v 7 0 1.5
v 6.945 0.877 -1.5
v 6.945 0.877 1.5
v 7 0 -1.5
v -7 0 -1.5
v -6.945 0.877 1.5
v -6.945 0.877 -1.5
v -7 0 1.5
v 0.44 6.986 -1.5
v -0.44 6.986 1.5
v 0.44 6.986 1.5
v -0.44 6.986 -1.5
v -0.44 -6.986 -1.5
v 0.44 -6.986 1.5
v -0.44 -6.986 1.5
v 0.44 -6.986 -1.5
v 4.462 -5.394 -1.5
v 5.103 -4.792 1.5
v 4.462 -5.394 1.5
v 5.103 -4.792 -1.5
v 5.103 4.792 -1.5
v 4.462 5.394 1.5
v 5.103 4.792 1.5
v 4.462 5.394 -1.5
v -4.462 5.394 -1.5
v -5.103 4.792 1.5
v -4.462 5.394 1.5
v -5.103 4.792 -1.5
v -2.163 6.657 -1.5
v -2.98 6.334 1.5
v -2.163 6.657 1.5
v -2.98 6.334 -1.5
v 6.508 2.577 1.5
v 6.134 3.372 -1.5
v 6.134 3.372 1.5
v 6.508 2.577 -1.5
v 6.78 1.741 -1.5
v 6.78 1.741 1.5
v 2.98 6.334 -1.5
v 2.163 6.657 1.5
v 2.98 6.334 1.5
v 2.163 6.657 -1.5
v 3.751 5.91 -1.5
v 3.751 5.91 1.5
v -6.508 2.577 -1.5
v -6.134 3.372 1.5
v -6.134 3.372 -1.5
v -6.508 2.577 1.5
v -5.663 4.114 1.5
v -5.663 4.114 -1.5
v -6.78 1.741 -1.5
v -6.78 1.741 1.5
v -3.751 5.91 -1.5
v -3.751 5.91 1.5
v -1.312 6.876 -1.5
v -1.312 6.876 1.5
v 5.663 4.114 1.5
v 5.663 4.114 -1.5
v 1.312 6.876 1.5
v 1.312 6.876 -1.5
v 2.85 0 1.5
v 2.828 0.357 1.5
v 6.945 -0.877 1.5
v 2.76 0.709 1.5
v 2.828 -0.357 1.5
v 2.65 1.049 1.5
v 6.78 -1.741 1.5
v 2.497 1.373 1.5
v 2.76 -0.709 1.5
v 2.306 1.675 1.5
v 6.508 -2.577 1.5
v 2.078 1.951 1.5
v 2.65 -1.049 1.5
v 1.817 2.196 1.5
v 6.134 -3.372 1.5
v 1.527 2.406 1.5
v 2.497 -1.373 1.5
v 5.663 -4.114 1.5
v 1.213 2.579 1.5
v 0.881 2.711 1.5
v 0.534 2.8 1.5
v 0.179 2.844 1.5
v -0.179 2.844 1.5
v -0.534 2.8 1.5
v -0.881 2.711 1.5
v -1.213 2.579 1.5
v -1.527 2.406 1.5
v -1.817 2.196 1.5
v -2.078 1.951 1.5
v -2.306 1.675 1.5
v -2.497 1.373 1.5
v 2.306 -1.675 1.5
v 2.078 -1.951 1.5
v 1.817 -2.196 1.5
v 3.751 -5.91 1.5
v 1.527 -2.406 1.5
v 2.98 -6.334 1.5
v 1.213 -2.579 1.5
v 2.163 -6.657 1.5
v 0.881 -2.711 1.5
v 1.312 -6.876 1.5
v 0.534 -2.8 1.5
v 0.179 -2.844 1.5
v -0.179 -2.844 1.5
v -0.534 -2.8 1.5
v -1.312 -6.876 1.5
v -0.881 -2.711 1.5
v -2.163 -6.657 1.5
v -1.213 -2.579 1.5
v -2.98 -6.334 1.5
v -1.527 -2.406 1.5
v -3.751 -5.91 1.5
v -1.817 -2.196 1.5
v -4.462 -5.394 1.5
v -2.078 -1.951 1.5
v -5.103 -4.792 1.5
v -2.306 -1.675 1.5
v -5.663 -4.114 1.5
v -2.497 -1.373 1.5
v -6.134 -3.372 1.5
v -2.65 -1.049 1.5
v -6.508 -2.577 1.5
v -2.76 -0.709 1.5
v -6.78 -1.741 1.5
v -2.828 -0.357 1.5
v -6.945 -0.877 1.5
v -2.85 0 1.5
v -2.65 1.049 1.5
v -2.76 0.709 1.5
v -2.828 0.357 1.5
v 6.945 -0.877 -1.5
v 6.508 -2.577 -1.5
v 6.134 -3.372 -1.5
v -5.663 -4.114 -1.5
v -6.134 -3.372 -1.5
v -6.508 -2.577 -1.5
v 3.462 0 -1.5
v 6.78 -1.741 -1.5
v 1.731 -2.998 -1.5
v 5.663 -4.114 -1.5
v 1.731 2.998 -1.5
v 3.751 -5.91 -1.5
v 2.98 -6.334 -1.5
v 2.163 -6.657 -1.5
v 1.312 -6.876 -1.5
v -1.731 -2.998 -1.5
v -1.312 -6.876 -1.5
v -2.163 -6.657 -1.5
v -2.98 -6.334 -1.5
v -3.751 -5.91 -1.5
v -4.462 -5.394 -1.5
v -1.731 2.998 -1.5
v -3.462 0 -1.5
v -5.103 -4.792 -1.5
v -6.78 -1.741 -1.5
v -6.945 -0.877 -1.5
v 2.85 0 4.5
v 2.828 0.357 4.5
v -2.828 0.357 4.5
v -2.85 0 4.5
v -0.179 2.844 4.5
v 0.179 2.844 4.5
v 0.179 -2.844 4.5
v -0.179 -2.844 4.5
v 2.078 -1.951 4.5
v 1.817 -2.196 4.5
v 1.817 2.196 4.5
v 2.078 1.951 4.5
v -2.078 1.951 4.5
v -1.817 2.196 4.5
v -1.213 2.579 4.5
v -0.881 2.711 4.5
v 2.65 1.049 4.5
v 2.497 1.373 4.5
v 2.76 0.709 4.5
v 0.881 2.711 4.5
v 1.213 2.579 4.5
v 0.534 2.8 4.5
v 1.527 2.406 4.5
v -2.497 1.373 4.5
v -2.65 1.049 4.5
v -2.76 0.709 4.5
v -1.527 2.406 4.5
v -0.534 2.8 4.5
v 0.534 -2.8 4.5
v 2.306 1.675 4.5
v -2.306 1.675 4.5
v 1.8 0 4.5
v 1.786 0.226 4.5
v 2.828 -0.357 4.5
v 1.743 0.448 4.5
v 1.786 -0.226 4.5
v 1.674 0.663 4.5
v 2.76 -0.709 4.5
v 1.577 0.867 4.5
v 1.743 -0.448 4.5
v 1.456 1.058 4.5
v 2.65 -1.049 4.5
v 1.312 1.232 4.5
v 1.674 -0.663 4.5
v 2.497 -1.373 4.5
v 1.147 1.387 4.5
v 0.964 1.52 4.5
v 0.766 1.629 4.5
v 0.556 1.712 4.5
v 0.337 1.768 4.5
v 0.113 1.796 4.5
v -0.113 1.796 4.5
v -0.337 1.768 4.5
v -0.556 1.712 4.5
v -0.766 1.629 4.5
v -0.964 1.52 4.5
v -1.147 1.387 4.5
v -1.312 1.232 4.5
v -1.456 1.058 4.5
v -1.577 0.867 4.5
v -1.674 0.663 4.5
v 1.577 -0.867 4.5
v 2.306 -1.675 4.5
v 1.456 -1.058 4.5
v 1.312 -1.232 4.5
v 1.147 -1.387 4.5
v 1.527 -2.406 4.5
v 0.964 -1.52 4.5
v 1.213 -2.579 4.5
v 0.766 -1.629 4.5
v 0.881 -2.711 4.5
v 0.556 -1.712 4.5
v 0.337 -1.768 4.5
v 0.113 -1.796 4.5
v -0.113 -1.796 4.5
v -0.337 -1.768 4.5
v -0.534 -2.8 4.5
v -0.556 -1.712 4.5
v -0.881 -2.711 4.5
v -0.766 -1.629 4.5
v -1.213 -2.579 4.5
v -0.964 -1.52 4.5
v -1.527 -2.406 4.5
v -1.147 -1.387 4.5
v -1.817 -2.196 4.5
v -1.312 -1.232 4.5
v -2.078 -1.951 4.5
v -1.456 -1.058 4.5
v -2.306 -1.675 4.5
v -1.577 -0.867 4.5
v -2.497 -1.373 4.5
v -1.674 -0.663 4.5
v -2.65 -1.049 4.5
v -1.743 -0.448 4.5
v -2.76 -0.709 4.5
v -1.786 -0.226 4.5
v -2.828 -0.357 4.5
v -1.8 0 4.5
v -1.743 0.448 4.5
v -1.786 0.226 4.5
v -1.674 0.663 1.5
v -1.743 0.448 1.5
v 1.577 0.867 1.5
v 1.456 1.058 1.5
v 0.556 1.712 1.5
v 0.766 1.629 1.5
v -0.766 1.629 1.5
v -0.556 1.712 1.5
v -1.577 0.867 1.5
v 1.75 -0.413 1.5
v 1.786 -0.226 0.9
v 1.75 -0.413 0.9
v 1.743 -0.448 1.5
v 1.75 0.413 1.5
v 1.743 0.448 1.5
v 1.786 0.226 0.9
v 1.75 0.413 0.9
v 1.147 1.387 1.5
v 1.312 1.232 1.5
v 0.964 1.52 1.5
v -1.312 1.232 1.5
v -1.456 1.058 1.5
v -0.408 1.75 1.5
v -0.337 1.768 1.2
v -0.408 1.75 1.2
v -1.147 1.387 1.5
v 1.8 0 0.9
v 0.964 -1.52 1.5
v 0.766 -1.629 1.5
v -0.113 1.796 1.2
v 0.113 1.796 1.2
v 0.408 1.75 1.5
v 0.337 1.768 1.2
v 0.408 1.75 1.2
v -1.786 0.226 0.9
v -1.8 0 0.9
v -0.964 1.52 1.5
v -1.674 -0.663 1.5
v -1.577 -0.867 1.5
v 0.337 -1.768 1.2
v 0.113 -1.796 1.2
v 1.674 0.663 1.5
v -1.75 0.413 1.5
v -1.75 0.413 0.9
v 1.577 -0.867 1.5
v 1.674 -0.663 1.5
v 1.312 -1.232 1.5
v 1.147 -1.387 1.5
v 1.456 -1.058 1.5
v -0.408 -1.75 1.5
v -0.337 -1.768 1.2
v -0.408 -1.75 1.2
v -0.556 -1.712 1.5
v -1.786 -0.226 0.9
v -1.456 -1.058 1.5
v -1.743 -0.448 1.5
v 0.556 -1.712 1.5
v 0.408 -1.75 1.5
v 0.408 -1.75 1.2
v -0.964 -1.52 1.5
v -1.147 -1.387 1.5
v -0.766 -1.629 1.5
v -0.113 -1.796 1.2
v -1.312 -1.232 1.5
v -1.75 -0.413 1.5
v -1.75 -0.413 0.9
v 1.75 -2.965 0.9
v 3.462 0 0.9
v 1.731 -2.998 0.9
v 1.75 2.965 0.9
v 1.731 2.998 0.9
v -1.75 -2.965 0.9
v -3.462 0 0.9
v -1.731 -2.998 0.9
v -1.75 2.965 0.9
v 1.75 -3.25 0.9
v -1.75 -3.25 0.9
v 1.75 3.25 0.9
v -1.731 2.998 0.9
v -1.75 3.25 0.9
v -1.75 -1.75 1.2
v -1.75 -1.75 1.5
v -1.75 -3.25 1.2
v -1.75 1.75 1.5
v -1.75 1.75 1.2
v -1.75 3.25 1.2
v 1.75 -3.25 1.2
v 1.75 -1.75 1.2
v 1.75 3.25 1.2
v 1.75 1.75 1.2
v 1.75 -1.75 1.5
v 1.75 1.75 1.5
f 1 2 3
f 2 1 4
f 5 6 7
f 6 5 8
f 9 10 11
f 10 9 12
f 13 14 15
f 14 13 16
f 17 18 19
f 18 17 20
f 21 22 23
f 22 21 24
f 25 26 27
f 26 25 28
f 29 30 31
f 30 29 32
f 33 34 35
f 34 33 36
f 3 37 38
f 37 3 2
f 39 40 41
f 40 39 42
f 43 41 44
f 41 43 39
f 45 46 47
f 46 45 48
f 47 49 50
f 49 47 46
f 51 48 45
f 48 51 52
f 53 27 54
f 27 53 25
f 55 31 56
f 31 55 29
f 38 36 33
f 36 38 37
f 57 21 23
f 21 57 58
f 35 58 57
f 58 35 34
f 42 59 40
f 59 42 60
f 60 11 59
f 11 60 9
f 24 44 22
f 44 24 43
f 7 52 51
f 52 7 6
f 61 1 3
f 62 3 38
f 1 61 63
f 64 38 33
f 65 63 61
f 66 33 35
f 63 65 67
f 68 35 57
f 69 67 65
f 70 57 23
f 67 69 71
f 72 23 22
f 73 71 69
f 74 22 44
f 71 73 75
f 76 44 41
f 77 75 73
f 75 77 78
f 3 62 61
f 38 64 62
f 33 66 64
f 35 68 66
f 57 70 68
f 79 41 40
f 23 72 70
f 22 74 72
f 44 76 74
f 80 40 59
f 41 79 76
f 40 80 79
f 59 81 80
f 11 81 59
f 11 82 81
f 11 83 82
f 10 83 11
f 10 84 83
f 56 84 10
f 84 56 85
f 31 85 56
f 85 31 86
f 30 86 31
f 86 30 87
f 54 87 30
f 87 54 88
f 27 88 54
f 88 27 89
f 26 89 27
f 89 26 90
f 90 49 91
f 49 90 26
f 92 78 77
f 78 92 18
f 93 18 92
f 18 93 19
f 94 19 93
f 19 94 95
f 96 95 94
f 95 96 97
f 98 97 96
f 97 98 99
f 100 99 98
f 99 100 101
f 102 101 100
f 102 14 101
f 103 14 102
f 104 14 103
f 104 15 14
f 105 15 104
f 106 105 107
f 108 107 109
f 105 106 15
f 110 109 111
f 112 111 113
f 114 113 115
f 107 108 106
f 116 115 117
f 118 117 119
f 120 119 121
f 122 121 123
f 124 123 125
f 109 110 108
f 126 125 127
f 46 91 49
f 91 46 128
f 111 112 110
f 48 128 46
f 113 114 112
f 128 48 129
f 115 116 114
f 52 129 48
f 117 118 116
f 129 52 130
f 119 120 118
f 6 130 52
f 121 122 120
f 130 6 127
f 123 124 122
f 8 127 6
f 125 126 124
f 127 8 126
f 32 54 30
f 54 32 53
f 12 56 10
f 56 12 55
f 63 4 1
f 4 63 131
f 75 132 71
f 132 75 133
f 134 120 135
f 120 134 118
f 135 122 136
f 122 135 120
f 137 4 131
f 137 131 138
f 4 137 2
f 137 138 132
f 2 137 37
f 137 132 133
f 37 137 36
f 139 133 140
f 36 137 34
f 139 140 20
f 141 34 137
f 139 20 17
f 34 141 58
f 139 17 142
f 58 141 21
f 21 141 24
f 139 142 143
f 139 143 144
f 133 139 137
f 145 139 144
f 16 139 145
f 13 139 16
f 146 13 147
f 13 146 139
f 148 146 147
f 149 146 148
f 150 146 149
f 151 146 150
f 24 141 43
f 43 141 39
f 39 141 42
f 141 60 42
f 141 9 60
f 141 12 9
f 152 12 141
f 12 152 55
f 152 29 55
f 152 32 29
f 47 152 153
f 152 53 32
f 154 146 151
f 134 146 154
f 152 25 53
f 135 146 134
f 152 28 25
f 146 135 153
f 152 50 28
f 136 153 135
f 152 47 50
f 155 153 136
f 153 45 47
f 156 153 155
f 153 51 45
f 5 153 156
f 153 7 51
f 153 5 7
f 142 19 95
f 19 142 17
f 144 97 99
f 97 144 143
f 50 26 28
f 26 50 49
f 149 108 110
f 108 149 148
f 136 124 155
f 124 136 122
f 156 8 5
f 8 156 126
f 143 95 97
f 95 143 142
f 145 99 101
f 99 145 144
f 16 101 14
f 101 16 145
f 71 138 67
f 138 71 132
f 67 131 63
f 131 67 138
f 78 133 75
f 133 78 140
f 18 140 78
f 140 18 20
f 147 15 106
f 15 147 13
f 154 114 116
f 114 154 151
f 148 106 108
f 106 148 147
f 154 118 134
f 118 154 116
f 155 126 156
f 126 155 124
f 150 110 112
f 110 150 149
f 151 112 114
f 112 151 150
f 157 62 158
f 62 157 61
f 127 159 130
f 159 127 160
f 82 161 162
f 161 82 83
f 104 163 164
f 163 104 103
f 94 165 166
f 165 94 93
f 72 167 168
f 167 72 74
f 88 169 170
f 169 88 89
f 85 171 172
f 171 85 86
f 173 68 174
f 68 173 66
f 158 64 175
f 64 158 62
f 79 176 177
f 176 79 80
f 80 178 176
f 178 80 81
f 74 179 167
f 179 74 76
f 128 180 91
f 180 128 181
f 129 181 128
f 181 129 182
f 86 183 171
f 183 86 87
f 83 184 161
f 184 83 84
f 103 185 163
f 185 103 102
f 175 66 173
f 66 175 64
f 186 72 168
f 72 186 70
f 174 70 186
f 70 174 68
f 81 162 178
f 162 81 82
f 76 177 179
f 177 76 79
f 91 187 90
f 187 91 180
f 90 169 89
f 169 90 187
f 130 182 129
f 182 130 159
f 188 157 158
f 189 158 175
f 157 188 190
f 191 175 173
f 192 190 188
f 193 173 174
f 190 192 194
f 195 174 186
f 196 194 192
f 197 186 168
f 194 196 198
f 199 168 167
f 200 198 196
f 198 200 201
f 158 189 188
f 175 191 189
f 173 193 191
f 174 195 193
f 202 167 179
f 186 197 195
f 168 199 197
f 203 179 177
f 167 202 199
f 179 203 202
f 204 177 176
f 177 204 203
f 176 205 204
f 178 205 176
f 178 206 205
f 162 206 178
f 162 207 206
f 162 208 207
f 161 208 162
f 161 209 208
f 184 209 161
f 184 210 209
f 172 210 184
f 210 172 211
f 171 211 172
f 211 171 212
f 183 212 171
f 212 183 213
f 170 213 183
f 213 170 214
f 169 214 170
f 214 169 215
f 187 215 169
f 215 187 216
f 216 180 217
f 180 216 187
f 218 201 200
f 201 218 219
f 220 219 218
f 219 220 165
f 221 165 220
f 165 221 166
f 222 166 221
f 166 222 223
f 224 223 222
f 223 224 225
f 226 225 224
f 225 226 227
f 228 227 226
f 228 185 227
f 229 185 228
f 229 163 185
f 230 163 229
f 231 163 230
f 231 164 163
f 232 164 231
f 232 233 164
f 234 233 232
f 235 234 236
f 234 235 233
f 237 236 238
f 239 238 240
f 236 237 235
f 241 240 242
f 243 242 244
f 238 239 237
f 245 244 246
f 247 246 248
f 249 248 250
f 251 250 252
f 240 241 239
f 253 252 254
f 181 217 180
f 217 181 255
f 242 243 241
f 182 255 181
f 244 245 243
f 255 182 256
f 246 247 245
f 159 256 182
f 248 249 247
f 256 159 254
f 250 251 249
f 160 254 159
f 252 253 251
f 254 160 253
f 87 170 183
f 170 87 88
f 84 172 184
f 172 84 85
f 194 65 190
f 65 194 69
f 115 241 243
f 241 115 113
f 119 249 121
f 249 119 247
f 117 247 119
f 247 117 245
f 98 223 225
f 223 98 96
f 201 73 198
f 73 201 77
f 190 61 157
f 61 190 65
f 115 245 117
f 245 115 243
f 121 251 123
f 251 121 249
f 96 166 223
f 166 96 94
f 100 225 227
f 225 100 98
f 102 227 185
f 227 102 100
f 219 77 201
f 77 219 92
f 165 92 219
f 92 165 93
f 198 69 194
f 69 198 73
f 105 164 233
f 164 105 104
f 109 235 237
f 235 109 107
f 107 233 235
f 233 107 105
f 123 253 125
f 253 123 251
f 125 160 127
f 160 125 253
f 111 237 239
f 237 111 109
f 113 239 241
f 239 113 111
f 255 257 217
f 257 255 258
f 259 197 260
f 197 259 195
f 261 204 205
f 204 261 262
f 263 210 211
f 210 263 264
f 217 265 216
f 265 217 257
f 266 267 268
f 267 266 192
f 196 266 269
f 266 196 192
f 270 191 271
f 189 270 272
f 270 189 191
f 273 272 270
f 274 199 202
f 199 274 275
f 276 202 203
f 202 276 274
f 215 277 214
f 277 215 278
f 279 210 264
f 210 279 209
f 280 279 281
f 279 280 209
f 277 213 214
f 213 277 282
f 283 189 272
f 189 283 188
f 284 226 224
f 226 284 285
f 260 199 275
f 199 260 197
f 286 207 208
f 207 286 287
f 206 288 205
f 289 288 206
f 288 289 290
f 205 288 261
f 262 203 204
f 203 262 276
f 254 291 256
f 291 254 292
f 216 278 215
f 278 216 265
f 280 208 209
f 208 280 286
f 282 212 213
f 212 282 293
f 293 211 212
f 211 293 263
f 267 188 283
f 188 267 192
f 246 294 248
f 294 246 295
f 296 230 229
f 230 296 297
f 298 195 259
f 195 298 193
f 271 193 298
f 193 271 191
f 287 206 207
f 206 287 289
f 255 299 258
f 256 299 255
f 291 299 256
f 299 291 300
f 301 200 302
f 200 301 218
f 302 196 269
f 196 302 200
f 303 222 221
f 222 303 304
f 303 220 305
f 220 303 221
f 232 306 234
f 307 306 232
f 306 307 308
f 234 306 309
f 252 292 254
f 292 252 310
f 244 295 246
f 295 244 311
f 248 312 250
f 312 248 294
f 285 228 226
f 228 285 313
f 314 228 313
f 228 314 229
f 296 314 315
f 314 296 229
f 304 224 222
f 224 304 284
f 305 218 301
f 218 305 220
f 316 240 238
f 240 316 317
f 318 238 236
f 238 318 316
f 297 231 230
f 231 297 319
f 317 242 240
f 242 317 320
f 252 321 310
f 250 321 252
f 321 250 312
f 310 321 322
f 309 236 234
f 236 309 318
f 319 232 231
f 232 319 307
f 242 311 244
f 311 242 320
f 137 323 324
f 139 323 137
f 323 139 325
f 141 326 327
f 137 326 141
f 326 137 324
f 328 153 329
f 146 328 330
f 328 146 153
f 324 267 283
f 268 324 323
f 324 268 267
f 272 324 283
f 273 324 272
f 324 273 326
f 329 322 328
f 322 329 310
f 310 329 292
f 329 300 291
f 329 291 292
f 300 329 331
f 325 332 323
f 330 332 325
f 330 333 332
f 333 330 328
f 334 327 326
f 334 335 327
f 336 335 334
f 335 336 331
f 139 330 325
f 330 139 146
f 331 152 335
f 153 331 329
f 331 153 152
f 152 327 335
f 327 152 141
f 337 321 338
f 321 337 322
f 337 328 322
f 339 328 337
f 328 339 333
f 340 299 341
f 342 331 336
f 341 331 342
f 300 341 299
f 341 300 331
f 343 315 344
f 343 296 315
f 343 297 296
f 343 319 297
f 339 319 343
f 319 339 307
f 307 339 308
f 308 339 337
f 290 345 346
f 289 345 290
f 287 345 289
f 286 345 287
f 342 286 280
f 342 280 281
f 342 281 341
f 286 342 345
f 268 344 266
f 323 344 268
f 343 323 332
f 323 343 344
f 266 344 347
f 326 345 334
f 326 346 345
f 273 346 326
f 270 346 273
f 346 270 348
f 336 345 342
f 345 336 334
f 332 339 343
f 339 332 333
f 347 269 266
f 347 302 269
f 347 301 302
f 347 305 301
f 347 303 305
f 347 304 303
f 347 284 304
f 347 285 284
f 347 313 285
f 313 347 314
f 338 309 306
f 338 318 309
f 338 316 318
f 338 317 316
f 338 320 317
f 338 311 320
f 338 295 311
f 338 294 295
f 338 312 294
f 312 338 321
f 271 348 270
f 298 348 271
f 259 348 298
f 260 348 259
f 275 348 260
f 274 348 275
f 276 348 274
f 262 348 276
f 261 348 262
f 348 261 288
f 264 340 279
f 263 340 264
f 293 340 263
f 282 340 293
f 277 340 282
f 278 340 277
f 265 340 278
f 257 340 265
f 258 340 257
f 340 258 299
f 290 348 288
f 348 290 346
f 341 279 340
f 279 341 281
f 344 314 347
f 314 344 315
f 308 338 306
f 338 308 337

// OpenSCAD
$fn = 50;


difference() {
	union() {
		translate(v = [0, 0, -1.5000000000]) {
			rotate(a = [0, 0, 0]) {
				cylinder(h = 3, r = 7.0000000000);
			}
		}
		translate(v = [0, 0, -1.5000000000]) {
			rotate(a = [0, 0, 0]) {
				cylinder(h = 6, r = 2.8500000000);
			}
		}
	}
	union() {
		translate(v = [0, 0, -125.0000000000]) {
			rotate(a = [0, 0, 0]) {
				cylinder(h = 250, r = 1.8000000000);
			}
		}
		translate(v = [0, 0, -2.1000000000]) {
			rotate(a = [0, 0, 0]) {
				#translate(v = [0, 0, 0]) {
					rotate(a = [0, 0, 0]) {
						linear_extrude(height = 3) {
							polygon(points = [[3.4620000000, 0.0000000000], [1.7310000000, 2.9981799479], [-1.7310000000, 2.9981799479], [-3.4620000000, 0.0000000000], [-1.7310000000, -2.9981799479], [1.7310000000, -2.9981799479]]);
						}
					}
				}
			}
		}
		#translate(v = [-1.7500000000, -3.2500000000, 0.9000000000]) {
			rotate(a = [0, 0, 0]) {
				cube(size = [3.5000000000, 6.5000000000, 0.3000000000]);
			}
		}
		#translate(v = [-1.7500000000, -1.7500000000, 1.2000000000]) {
			rotate(a = [0, 0, 0]) {
				cube(size = [3.5000000000, 3.5000000000, 0.3000000000]);
			}
		}
		#translate(v = [-1.7500000000, -3.2500000000, -2.4000000000]) {
			rotate(a = [0, 0, 0]) {
				cube(size = [3.5000000000, 6.5000000000, 0.3000000000]);
			}
		}
		#translate(v = [-1.7500000000, -1.7500000000, -2.7000000000]) {
			rotate(a = [0, 0, 0]) {
				cube(size = [3.5000000000, 3.5000000000, 0.3000000000]);
			}
		}
	}
}
